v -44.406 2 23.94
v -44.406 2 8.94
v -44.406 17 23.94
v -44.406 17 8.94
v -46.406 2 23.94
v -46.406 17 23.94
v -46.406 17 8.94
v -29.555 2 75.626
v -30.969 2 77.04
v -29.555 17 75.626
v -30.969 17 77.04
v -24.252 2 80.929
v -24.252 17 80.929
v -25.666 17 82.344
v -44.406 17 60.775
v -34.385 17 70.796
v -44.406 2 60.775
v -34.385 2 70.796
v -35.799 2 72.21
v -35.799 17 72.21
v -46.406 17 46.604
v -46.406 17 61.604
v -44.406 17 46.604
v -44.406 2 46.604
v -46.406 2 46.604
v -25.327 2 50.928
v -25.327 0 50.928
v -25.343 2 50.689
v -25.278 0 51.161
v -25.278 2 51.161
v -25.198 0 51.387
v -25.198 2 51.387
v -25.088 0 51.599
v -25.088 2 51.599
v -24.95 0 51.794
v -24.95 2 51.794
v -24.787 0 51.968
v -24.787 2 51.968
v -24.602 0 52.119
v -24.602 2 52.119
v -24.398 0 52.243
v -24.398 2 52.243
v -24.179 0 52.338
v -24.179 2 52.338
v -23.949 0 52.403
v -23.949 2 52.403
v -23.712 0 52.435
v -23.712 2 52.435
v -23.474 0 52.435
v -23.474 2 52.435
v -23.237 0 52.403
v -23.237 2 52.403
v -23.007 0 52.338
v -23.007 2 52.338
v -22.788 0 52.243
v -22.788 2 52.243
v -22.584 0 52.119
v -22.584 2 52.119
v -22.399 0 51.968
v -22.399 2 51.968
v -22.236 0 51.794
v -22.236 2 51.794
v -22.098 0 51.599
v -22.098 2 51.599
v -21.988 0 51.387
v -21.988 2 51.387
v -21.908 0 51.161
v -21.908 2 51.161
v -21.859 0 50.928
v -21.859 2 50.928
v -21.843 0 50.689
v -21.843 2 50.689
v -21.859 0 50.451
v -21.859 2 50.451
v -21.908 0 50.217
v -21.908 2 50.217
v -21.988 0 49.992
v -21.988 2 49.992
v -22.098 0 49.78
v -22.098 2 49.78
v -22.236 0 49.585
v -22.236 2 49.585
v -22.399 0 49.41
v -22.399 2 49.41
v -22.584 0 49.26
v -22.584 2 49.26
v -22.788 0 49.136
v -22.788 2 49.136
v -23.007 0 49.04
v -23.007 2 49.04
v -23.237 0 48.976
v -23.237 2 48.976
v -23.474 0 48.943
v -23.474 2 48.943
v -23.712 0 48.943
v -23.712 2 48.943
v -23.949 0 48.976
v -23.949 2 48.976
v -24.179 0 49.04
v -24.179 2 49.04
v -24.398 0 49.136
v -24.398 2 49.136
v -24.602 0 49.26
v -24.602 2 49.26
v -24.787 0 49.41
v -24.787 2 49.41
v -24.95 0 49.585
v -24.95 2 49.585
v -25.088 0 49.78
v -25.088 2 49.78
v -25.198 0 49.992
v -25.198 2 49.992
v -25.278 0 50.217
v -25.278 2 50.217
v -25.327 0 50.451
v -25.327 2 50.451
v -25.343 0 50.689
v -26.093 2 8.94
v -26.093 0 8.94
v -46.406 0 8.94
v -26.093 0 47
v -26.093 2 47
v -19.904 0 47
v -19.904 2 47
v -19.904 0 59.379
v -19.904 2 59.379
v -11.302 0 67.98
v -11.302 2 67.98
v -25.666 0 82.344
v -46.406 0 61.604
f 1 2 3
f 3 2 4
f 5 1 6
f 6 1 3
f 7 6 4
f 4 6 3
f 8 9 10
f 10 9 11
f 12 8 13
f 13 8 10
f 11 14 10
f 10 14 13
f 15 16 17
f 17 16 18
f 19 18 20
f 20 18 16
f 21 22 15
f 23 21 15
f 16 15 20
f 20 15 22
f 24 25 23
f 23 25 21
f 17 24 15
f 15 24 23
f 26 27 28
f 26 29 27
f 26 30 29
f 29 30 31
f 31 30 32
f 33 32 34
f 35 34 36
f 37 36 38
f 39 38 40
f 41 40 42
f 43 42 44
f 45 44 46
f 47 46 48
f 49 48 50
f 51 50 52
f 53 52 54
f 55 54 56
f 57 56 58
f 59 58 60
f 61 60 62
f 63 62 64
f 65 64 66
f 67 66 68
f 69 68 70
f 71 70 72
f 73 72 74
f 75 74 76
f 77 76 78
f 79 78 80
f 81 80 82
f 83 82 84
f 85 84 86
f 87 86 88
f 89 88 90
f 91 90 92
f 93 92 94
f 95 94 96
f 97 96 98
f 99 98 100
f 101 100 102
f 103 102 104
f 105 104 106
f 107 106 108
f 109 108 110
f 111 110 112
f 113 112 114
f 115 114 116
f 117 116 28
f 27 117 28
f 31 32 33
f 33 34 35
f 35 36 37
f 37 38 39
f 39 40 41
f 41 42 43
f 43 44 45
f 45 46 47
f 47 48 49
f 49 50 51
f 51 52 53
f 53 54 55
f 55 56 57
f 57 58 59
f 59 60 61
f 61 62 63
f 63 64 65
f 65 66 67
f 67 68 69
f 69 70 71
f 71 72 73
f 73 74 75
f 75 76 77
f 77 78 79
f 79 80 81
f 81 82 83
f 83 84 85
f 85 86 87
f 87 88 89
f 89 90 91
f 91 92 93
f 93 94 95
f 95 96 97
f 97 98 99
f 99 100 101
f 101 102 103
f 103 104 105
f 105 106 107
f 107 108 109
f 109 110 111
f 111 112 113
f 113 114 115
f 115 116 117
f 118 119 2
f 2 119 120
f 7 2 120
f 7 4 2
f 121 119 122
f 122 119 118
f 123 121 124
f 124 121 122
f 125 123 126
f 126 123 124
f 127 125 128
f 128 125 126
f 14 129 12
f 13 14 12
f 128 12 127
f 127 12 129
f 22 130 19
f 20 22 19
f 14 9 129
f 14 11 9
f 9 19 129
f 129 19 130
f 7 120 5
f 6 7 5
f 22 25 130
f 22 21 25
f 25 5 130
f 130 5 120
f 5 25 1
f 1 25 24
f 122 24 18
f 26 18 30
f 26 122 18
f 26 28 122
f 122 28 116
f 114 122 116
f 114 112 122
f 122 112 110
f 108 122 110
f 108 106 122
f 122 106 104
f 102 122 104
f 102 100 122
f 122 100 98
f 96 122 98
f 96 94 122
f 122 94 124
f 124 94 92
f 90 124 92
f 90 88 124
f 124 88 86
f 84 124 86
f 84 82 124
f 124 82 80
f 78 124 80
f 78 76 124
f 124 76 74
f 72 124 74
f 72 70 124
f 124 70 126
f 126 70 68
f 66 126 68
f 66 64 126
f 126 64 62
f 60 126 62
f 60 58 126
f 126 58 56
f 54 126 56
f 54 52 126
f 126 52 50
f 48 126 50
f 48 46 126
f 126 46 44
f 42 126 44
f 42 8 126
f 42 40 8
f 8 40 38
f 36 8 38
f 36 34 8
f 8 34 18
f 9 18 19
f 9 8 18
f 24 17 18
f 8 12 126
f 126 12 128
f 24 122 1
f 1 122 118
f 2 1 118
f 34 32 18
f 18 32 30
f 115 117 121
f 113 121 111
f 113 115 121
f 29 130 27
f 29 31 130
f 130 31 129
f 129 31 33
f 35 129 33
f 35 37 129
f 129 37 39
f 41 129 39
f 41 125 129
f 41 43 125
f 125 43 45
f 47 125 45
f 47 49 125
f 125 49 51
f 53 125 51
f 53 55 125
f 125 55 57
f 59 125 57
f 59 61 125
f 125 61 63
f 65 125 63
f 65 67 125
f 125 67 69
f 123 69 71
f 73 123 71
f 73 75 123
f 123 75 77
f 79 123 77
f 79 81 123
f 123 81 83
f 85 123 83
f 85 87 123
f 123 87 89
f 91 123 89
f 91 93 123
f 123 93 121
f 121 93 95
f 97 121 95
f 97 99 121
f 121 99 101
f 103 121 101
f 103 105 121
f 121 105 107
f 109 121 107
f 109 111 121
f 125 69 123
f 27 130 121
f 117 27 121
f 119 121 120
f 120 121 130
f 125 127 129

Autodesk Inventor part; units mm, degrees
ref_plane "YZ Plane" through (0, 0, 0) normal (1, 0, 0) x (0, 1, 0)
ref_plane "XZ Plane" through (0, 0, 0) normal (0, 1, 0) x (-1, 0, 0)
ref_plane "XY Plane" through (0, 0, 0) normal (0, 0, 1) x (1, 0, 0)
sketch "Sketch1" plane through (0, 0, 0) normal (0, 1, 0) x (-1, 0, 0)
  line L0 (25.6659, 82.3437) -> (46.406, 61.6036)
  line L1 (46.406, 61.6036) -> (46.406, 8.9397)
  circle A0 centre (23.593, 50.6893) radius 1.75
  circle A1 centre (23.593, 50.6893) radius 1.75
  line L2 (46.406, 8.9397) -> (26.093, 8.9397)
  line L3 (26.093, 47) -> (19.9037, 47)
  line L4 (19.9037, 47) -> (19.9037, 59.379)
  line L5 (11.3025, 67.9802) -> (19.9037, 59.379)
  line L6 (26.093, 47) -> (26.093, 8.9397)
  line L7 (25.6659, 82.3437) -> (11.3025, 67.9802)
extrude "Extrusion3" add sketch "Sketch1" along normal blind 2
sketch "Sketch3" plane through (0, 2, 0) normal (0, 1, 0) x (1, 0, 0)
  circle A0 centre (-23.593, -50.6893) radius 1.75 projected
  line L0 (-46.406, -8.9397) -> (-46.406, -61.6036) projected
  line L1 (-46.406, -61.6036) -> (-25.6659, -82.3437) projected
  line L2 (-25.6659, -82.3437) -> (-11.3025, -67.9802) projected
  line L3 (-11.3025, -67.9802) -> (-19.9037, -59.379) projected
  line L4 (-19.9037, -59.379) -> (-19.9037, -47) projected
  line L5 (-19.9037, -47) -> (-26.093, -47) projected
  line L6 (-26.093, -47) -> (-26.093, -8.9397) projected
  line L7 (-26.093, -8.9397) -> (-46.406, -8.9397) projected
  line L8 (-46.406, -8.9397) -> (-46.406, -23.9397)
  line L9 (-46.406, -23.9397) -> (-44.406, -23.9397)
  line L10 (-44.406, -23.9397) -> (-44.406, -8.9397)
  line L11 (-44.406, -8.9397) -> (-46.406, -8.9397)
  line L12 (-46.406, -8.9397) -> (-31.406, -8.9397) construction
  line L13 (-46.406, -61.6036) -> (-46.406, -46.6036)
  line L14 (-46.406, -46.6036) -> (-44.406, -46.6036)
  line L15 (-44.406, -46.6036) -> (-44.406, -61.6036)
  line L16 (-44.406, -61.6036) -> (-46.406, -61.6036)
  line L17 (-46.406, -61.6036) -> (-31.406, -61.6036) construction
  line L18 (-46.406, -61.6036) -> (-35.7994, -72.2102)
  line L19 (-35.7994, -72.2102) -> (-34.3852, -70.796)
  line L20 (-34.3852, -70.796) -> (-44.9918, -60.1894)
  line L21 (-44.9918, -60.1894) -> (-46.406, -61.6036)
  line L22 (-46.406, -61.6036) -> (-31.406, -61.6036) construction
  line L23 (-46.406, -61.6036) -> (-25.6659, -82.3437) projected
  line L24 (-25.6659, -82.3437) -> (-30.9692, -77.0404)
  line L25 (-30.9692, -77.0404) -> (-29.555, -75.6262)
  line L26 (-29.555, -75.6262) -> (-24.2517, -80.9295)
  line L27 (-24.2517, -80.9295) -> (-25.6659, -82.3437)
  point P0 (0, 0)
  dimension "d20" = 15
  dimension "d21" = 90
  dimension "d22" = 2
  dimension "d23" = 15
  dimension "d24" = 90
  dimension "d25" = 2
  dimension "d26" = 15
  dimension "d27" = 45
  dimension "d28" = 2
  dimension "d29" = 7.5
  dimension "d30" = 2
extrude "Extrusion4" add sketch "Sketch3" along normal blind 15 contours L7 L10 L9 L0 | L14 L15 L20 L21 L0 | L16 L15 L20 L19 L1 | L21 L20 L15 L16 | L25 L26 L2 L1
properties part number "covfronti2c2"
